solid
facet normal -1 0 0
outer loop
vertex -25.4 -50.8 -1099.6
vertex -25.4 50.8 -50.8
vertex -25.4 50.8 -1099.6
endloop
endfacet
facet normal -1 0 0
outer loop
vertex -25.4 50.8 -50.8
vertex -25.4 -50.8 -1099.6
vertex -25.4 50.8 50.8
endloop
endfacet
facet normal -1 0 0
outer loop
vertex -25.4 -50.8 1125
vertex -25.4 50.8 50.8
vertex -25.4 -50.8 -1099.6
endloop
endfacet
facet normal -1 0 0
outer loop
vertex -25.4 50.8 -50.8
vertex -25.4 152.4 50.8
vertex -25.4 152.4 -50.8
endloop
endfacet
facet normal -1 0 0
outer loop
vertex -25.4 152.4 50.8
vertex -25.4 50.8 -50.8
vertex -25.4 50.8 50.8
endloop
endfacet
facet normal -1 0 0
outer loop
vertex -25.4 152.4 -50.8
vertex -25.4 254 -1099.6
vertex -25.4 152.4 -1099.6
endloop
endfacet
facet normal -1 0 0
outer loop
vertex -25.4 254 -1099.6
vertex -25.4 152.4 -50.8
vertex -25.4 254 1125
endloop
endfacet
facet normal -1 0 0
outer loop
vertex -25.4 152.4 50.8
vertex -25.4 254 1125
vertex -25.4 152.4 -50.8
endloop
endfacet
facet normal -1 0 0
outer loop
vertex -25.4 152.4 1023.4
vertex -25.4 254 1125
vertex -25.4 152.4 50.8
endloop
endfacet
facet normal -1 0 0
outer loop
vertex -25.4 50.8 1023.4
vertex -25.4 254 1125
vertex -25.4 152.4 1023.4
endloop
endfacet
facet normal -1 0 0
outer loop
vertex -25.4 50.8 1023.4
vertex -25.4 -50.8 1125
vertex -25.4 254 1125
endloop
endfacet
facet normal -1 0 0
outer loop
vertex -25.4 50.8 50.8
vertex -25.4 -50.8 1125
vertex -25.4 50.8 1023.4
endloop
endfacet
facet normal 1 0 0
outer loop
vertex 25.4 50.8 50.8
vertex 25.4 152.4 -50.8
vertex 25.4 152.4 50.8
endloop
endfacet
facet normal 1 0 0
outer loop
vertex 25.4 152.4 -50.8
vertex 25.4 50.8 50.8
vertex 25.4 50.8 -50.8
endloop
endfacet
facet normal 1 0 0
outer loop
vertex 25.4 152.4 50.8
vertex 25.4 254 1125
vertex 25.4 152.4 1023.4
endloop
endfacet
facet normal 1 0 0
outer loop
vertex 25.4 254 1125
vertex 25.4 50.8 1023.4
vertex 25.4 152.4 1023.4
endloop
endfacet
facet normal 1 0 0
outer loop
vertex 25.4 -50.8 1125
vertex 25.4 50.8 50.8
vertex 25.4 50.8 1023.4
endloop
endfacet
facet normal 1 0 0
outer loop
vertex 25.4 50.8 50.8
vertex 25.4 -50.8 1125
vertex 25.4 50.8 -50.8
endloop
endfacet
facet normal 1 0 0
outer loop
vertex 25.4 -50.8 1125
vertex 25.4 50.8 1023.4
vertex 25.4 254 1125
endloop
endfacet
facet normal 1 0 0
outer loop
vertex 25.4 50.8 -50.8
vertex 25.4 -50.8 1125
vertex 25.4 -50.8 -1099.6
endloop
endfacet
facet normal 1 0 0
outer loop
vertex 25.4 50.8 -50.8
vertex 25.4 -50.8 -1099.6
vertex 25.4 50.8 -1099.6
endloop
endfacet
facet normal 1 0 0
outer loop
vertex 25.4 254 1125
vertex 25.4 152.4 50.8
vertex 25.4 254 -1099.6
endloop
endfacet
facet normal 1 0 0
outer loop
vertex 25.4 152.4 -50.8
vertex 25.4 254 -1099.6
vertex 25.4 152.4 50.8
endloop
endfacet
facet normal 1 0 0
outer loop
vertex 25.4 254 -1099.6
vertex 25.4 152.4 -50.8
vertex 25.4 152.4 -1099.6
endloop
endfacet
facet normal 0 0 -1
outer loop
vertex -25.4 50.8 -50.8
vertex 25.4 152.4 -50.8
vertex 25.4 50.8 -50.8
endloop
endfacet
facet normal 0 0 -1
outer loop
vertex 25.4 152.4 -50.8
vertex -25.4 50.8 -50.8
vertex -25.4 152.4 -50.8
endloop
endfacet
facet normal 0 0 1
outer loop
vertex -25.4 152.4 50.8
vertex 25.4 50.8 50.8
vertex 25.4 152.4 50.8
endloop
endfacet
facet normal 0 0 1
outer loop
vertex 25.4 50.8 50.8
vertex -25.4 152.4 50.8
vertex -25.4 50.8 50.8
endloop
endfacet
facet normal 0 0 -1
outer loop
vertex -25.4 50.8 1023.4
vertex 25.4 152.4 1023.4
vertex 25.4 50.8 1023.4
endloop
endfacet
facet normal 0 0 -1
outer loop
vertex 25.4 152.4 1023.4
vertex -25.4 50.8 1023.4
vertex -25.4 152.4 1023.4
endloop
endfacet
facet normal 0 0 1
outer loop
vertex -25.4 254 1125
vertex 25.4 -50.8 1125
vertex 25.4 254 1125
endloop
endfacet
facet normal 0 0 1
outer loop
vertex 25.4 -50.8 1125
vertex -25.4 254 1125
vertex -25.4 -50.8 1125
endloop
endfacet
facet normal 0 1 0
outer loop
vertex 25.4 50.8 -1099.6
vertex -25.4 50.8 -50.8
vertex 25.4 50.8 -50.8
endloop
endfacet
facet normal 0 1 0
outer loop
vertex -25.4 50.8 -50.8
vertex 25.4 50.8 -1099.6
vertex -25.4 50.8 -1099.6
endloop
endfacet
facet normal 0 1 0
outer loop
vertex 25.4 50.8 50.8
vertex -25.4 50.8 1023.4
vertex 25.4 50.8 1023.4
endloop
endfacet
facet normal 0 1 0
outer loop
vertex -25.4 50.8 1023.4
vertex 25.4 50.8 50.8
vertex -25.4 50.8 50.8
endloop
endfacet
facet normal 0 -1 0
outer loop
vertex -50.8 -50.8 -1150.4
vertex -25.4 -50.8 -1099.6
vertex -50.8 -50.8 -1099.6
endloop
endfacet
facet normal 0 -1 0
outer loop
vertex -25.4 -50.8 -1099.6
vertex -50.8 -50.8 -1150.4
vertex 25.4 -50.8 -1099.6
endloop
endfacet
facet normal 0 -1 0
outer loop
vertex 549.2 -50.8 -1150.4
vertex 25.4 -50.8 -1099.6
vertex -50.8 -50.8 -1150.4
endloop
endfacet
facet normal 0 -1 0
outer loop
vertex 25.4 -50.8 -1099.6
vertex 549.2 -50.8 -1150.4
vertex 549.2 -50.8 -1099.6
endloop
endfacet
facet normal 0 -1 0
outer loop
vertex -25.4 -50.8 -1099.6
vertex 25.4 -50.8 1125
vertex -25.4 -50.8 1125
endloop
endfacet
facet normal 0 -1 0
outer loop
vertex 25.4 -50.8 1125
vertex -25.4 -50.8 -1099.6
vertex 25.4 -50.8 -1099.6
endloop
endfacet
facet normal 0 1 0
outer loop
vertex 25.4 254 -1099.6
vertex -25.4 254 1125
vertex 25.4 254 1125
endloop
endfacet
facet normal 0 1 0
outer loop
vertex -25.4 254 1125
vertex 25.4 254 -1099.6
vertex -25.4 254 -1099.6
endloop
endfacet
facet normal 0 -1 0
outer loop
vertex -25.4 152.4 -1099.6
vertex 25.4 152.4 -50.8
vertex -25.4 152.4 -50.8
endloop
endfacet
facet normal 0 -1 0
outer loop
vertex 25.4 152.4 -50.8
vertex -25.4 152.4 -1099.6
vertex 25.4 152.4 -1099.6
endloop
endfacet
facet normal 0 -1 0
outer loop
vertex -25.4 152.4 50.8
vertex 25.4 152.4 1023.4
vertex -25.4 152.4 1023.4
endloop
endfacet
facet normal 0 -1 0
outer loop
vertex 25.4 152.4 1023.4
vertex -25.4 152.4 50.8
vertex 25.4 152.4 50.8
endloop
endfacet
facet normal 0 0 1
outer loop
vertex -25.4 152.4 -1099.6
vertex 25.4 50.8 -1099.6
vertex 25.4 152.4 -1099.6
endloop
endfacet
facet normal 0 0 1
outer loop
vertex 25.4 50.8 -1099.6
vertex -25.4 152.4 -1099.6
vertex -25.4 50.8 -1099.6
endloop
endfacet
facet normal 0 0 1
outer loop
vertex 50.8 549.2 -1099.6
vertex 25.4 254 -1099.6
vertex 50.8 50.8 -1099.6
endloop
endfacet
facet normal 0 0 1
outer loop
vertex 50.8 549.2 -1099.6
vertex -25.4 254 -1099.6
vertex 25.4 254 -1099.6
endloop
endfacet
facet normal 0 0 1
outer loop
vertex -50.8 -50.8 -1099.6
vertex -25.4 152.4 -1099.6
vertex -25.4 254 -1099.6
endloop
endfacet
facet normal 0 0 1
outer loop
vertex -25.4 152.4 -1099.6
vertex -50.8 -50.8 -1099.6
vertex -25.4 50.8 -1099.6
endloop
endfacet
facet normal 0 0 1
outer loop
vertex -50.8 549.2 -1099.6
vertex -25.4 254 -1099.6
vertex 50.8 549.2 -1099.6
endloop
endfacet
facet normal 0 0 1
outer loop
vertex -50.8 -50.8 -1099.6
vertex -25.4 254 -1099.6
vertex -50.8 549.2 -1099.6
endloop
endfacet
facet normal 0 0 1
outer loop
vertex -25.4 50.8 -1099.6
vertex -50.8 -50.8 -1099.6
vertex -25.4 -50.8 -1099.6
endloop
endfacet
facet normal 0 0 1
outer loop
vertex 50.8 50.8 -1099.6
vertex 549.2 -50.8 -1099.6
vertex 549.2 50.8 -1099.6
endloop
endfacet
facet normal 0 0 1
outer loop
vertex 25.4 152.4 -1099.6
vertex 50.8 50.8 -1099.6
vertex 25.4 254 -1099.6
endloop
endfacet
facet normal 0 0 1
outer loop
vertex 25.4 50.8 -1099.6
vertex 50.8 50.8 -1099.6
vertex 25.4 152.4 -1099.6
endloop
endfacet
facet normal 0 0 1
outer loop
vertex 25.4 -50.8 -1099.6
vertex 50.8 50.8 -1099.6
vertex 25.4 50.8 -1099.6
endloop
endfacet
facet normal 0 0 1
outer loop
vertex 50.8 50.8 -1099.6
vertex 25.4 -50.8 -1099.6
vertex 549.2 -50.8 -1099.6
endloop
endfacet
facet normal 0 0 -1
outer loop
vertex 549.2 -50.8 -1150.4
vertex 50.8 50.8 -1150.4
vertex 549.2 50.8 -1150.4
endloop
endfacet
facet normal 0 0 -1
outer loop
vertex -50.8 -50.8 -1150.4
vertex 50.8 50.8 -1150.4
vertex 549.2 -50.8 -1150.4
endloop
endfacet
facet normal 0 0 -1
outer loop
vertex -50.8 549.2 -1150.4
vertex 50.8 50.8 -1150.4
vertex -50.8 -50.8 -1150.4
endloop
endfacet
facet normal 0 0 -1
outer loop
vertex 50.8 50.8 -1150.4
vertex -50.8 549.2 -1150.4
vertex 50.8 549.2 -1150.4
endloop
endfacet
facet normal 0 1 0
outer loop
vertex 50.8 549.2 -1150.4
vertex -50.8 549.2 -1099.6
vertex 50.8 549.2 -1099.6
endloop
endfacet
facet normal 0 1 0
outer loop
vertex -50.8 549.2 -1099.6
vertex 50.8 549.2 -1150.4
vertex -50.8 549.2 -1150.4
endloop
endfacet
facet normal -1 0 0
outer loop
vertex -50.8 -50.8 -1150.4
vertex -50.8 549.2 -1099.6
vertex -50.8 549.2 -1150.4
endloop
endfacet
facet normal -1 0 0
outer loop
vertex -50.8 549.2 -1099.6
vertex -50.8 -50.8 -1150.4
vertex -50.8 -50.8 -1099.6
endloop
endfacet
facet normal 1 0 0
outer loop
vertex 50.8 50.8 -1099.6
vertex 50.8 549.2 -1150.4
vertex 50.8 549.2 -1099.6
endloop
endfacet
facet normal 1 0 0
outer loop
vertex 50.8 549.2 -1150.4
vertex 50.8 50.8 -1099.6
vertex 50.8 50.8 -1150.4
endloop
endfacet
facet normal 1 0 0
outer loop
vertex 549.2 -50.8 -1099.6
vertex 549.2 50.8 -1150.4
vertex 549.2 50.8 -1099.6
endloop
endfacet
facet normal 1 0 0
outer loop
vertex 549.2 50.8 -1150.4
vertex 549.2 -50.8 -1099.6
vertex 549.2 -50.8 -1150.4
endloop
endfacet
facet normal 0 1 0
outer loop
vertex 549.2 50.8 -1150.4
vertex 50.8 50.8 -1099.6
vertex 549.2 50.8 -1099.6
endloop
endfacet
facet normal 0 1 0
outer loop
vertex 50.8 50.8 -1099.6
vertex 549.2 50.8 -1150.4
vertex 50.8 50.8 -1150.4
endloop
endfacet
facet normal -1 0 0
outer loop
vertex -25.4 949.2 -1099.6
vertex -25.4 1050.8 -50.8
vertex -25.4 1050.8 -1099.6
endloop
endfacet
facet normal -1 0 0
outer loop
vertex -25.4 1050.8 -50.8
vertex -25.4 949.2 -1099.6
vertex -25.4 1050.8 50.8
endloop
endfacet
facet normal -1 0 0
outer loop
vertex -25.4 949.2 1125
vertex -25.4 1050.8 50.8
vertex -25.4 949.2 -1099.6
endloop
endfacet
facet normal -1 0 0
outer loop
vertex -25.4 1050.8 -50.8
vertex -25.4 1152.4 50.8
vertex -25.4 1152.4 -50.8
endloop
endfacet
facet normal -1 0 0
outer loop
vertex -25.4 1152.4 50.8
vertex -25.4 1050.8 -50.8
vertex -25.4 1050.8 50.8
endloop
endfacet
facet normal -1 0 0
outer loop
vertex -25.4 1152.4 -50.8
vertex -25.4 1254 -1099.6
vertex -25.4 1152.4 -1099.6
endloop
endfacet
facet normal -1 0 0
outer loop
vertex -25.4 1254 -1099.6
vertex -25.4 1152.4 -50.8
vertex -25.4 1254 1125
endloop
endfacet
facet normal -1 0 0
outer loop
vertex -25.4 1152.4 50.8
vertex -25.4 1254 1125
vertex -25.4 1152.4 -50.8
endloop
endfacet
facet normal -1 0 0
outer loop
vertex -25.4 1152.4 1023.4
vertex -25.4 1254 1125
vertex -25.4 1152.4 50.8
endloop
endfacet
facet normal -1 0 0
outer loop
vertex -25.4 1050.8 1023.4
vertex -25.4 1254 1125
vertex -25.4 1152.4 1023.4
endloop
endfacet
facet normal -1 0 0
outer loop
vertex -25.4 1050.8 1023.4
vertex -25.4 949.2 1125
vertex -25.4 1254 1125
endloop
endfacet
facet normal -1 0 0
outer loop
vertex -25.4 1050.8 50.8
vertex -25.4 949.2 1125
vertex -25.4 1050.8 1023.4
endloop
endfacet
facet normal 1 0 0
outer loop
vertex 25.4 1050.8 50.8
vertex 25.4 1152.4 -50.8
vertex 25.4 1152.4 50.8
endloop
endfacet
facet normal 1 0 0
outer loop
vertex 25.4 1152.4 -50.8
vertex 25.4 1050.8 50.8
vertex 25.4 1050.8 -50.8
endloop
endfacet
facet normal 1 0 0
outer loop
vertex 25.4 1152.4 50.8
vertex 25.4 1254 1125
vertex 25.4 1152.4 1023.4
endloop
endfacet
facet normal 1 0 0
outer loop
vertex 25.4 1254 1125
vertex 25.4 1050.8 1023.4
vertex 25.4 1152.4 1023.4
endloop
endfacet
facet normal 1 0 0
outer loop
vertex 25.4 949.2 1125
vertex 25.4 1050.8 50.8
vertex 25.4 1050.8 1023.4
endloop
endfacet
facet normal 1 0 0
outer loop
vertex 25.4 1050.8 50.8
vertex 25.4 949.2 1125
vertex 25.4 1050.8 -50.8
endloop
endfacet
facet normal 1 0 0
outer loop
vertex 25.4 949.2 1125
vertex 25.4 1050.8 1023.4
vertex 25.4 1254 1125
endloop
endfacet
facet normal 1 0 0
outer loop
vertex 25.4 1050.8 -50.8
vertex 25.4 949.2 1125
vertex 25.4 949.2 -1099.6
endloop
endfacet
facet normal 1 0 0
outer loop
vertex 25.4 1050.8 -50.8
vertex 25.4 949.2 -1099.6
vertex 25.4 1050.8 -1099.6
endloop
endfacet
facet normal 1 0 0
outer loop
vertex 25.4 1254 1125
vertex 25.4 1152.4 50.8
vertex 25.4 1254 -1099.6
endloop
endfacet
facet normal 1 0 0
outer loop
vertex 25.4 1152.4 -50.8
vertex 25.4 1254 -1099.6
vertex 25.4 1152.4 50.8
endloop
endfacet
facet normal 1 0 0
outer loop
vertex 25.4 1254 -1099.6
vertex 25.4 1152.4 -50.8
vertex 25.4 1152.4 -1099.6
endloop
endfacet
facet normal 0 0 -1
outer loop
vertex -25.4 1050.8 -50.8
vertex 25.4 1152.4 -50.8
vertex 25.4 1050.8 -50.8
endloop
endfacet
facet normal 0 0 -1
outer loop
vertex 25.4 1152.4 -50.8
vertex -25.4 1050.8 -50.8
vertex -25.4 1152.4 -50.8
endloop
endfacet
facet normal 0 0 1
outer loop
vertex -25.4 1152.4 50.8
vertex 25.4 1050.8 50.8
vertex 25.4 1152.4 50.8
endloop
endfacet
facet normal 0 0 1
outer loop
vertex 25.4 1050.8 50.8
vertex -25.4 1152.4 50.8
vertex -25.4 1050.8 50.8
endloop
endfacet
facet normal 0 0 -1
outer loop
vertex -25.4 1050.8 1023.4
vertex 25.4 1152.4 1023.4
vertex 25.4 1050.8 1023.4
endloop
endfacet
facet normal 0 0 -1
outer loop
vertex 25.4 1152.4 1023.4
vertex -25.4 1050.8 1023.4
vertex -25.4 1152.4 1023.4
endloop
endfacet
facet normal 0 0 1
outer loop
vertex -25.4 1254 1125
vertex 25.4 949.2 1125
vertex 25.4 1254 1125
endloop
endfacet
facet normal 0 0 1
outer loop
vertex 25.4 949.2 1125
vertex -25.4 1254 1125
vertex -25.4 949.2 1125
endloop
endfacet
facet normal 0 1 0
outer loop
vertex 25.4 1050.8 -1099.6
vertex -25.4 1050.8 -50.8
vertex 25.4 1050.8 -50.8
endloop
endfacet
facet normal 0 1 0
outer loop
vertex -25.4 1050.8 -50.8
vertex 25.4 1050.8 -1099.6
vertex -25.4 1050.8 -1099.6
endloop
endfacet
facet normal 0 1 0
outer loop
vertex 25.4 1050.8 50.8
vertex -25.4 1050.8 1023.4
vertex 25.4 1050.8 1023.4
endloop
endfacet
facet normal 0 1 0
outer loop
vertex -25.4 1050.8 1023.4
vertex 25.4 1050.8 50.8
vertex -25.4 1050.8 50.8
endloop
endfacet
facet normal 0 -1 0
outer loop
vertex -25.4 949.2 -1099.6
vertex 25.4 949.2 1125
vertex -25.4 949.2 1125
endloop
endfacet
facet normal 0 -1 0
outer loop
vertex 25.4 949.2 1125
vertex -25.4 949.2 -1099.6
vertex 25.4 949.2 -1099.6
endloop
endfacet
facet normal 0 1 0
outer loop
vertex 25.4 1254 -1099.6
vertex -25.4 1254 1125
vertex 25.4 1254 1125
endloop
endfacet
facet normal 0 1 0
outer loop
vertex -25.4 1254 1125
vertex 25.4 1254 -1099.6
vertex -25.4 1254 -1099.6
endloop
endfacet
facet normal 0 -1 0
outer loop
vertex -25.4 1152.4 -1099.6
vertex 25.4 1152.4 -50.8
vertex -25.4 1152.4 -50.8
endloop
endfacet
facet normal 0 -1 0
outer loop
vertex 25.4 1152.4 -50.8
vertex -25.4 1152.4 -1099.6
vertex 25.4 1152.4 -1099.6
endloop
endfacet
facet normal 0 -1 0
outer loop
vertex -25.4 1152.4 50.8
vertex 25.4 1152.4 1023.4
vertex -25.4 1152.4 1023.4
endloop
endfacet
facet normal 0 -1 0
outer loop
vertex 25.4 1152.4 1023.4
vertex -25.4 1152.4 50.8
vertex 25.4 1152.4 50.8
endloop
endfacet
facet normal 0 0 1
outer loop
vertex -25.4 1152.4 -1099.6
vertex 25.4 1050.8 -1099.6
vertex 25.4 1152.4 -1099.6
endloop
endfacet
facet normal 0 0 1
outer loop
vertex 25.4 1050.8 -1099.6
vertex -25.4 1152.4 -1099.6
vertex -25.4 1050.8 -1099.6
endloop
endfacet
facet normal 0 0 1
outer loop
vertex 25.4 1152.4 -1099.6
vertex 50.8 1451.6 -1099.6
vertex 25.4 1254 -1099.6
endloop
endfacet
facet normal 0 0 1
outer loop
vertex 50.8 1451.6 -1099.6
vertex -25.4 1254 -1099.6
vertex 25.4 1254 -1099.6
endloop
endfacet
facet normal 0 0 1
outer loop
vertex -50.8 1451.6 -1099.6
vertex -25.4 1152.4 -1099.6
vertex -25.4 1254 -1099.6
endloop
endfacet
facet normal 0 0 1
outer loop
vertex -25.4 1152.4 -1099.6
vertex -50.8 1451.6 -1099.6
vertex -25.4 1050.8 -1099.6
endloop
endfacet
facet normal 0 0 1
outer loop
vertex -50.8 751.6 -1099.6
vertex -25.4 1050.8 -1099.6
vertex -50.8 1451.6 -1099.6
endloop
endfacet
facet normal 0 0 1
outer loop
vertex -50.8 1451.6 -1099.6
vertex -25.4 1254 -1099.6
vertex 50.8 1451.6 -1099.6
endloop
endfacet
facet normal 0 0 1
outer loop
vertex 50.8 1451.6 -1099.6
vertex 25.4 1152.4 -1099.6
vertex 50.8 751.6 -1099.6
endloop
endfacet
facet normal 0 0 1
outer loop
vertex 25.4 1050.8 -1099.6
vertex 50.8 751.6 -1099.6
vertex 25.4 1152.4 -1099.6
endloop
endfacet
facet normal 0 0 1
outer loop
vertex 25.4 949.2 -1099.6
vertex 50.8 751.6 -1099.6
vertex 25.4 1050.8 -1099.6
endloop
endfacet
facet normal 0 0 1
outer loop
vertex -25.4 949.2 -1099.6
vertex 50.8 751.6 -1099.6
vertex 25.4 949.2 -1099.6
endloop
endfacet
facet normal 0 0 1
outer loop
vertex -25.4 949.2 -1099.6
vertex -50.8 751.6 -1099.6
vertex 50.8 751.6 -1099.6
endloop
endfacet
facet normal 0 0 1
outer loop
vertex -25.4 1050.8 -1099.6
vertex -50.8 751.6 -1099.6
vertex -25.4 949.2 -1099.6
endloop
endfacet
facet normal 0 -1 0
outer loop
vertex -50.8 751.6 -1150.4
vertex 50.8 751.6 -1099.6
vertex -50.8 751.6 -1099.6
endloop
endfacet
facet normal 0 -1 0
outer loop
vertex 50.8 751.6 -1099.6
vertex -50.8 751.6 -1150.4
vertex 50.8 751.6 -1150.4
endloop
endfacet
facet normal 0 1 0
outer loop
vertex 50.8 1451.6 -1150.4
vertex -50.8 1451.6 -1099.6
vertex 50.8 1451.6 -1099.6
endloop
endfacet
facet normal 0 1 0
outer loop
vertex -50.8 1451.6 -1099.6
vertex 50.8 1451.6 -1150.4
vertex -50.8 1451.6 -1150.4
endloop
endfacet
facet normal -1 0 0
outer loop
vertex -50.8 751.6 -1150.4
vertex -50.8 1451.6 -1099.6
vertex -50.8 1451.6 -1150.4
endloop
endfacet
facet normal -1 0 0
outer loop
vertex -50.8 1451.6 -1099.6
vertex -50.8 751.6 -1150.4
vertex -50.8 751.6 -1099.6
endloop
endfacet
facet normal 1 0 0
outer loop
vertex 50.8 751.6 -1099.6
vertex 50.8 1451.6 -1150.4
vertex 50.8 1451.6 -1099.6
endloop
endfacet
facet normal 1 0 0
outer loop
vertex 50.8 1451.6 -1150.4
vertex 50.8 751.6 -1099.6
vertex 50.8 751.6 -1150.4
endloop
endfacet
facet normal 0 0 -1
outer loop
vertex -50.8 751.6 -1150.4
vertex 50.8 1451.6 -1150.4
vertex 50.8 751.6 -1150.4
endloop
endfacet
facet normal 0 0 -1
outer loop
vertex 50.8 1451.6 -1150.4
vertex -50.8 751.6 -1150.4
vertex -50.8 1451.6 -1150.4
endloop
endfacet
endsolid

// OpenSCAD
MM_IN_INCH = 25.4;
BEAM_WIDTH = 2*MM_IN_INCH;
BEAM_THICKNESS = 4*MM_IN_INCH;
WALL_HEIGHT = 2250;


module w2x4(length) {
  cube([BEAM_WIDTH, BEAM_THICKNESS, length], true);
}


module stand(height, stand_width, sep_distance) {
  union() {
    w2x4(height);
    translate([0, sep_distance , 0])
      w2x4(height);
    for (pos = [0, height/2-BEAM_THICKNESS/2]) {
      translate([0, sep_distance/2, pos])
        rotate([90, 0, 0])
          w2x4(sep_distance);
    }
  }
}

module wall_stand(height, stand_width, sep_distance) {
  union() {
    stand(height, stand_width, sep_distance);
    translate([0, sep_distance/2 , -height/2])
      rotate([90, 90, 0])
      w2x4(stand_width);
  }
}

module corner_stand(height, stand_width, sep_distance) {
  union() {
    stand(height, stand_width, sep_distance);
    translate([0, stand_width/2-BEAM_WIDTH , -height/2])
      rotate([90, 90, 0])
      w2x4(stand_width);
    # translate([stand_width/2-BEAM_WIDTH, 0 , -height/2])
      rotate([0, 90, 0])
      w2x4(stand_width);
  }
}

corner_stand(WALL_HEIGHT, 600, 2 * BEAM_THICKNESS);

translate([0, 1000, 0])
  wall_stand(WALL_HEIGHT, 700, 2 * BEAM_THICKNESS);
